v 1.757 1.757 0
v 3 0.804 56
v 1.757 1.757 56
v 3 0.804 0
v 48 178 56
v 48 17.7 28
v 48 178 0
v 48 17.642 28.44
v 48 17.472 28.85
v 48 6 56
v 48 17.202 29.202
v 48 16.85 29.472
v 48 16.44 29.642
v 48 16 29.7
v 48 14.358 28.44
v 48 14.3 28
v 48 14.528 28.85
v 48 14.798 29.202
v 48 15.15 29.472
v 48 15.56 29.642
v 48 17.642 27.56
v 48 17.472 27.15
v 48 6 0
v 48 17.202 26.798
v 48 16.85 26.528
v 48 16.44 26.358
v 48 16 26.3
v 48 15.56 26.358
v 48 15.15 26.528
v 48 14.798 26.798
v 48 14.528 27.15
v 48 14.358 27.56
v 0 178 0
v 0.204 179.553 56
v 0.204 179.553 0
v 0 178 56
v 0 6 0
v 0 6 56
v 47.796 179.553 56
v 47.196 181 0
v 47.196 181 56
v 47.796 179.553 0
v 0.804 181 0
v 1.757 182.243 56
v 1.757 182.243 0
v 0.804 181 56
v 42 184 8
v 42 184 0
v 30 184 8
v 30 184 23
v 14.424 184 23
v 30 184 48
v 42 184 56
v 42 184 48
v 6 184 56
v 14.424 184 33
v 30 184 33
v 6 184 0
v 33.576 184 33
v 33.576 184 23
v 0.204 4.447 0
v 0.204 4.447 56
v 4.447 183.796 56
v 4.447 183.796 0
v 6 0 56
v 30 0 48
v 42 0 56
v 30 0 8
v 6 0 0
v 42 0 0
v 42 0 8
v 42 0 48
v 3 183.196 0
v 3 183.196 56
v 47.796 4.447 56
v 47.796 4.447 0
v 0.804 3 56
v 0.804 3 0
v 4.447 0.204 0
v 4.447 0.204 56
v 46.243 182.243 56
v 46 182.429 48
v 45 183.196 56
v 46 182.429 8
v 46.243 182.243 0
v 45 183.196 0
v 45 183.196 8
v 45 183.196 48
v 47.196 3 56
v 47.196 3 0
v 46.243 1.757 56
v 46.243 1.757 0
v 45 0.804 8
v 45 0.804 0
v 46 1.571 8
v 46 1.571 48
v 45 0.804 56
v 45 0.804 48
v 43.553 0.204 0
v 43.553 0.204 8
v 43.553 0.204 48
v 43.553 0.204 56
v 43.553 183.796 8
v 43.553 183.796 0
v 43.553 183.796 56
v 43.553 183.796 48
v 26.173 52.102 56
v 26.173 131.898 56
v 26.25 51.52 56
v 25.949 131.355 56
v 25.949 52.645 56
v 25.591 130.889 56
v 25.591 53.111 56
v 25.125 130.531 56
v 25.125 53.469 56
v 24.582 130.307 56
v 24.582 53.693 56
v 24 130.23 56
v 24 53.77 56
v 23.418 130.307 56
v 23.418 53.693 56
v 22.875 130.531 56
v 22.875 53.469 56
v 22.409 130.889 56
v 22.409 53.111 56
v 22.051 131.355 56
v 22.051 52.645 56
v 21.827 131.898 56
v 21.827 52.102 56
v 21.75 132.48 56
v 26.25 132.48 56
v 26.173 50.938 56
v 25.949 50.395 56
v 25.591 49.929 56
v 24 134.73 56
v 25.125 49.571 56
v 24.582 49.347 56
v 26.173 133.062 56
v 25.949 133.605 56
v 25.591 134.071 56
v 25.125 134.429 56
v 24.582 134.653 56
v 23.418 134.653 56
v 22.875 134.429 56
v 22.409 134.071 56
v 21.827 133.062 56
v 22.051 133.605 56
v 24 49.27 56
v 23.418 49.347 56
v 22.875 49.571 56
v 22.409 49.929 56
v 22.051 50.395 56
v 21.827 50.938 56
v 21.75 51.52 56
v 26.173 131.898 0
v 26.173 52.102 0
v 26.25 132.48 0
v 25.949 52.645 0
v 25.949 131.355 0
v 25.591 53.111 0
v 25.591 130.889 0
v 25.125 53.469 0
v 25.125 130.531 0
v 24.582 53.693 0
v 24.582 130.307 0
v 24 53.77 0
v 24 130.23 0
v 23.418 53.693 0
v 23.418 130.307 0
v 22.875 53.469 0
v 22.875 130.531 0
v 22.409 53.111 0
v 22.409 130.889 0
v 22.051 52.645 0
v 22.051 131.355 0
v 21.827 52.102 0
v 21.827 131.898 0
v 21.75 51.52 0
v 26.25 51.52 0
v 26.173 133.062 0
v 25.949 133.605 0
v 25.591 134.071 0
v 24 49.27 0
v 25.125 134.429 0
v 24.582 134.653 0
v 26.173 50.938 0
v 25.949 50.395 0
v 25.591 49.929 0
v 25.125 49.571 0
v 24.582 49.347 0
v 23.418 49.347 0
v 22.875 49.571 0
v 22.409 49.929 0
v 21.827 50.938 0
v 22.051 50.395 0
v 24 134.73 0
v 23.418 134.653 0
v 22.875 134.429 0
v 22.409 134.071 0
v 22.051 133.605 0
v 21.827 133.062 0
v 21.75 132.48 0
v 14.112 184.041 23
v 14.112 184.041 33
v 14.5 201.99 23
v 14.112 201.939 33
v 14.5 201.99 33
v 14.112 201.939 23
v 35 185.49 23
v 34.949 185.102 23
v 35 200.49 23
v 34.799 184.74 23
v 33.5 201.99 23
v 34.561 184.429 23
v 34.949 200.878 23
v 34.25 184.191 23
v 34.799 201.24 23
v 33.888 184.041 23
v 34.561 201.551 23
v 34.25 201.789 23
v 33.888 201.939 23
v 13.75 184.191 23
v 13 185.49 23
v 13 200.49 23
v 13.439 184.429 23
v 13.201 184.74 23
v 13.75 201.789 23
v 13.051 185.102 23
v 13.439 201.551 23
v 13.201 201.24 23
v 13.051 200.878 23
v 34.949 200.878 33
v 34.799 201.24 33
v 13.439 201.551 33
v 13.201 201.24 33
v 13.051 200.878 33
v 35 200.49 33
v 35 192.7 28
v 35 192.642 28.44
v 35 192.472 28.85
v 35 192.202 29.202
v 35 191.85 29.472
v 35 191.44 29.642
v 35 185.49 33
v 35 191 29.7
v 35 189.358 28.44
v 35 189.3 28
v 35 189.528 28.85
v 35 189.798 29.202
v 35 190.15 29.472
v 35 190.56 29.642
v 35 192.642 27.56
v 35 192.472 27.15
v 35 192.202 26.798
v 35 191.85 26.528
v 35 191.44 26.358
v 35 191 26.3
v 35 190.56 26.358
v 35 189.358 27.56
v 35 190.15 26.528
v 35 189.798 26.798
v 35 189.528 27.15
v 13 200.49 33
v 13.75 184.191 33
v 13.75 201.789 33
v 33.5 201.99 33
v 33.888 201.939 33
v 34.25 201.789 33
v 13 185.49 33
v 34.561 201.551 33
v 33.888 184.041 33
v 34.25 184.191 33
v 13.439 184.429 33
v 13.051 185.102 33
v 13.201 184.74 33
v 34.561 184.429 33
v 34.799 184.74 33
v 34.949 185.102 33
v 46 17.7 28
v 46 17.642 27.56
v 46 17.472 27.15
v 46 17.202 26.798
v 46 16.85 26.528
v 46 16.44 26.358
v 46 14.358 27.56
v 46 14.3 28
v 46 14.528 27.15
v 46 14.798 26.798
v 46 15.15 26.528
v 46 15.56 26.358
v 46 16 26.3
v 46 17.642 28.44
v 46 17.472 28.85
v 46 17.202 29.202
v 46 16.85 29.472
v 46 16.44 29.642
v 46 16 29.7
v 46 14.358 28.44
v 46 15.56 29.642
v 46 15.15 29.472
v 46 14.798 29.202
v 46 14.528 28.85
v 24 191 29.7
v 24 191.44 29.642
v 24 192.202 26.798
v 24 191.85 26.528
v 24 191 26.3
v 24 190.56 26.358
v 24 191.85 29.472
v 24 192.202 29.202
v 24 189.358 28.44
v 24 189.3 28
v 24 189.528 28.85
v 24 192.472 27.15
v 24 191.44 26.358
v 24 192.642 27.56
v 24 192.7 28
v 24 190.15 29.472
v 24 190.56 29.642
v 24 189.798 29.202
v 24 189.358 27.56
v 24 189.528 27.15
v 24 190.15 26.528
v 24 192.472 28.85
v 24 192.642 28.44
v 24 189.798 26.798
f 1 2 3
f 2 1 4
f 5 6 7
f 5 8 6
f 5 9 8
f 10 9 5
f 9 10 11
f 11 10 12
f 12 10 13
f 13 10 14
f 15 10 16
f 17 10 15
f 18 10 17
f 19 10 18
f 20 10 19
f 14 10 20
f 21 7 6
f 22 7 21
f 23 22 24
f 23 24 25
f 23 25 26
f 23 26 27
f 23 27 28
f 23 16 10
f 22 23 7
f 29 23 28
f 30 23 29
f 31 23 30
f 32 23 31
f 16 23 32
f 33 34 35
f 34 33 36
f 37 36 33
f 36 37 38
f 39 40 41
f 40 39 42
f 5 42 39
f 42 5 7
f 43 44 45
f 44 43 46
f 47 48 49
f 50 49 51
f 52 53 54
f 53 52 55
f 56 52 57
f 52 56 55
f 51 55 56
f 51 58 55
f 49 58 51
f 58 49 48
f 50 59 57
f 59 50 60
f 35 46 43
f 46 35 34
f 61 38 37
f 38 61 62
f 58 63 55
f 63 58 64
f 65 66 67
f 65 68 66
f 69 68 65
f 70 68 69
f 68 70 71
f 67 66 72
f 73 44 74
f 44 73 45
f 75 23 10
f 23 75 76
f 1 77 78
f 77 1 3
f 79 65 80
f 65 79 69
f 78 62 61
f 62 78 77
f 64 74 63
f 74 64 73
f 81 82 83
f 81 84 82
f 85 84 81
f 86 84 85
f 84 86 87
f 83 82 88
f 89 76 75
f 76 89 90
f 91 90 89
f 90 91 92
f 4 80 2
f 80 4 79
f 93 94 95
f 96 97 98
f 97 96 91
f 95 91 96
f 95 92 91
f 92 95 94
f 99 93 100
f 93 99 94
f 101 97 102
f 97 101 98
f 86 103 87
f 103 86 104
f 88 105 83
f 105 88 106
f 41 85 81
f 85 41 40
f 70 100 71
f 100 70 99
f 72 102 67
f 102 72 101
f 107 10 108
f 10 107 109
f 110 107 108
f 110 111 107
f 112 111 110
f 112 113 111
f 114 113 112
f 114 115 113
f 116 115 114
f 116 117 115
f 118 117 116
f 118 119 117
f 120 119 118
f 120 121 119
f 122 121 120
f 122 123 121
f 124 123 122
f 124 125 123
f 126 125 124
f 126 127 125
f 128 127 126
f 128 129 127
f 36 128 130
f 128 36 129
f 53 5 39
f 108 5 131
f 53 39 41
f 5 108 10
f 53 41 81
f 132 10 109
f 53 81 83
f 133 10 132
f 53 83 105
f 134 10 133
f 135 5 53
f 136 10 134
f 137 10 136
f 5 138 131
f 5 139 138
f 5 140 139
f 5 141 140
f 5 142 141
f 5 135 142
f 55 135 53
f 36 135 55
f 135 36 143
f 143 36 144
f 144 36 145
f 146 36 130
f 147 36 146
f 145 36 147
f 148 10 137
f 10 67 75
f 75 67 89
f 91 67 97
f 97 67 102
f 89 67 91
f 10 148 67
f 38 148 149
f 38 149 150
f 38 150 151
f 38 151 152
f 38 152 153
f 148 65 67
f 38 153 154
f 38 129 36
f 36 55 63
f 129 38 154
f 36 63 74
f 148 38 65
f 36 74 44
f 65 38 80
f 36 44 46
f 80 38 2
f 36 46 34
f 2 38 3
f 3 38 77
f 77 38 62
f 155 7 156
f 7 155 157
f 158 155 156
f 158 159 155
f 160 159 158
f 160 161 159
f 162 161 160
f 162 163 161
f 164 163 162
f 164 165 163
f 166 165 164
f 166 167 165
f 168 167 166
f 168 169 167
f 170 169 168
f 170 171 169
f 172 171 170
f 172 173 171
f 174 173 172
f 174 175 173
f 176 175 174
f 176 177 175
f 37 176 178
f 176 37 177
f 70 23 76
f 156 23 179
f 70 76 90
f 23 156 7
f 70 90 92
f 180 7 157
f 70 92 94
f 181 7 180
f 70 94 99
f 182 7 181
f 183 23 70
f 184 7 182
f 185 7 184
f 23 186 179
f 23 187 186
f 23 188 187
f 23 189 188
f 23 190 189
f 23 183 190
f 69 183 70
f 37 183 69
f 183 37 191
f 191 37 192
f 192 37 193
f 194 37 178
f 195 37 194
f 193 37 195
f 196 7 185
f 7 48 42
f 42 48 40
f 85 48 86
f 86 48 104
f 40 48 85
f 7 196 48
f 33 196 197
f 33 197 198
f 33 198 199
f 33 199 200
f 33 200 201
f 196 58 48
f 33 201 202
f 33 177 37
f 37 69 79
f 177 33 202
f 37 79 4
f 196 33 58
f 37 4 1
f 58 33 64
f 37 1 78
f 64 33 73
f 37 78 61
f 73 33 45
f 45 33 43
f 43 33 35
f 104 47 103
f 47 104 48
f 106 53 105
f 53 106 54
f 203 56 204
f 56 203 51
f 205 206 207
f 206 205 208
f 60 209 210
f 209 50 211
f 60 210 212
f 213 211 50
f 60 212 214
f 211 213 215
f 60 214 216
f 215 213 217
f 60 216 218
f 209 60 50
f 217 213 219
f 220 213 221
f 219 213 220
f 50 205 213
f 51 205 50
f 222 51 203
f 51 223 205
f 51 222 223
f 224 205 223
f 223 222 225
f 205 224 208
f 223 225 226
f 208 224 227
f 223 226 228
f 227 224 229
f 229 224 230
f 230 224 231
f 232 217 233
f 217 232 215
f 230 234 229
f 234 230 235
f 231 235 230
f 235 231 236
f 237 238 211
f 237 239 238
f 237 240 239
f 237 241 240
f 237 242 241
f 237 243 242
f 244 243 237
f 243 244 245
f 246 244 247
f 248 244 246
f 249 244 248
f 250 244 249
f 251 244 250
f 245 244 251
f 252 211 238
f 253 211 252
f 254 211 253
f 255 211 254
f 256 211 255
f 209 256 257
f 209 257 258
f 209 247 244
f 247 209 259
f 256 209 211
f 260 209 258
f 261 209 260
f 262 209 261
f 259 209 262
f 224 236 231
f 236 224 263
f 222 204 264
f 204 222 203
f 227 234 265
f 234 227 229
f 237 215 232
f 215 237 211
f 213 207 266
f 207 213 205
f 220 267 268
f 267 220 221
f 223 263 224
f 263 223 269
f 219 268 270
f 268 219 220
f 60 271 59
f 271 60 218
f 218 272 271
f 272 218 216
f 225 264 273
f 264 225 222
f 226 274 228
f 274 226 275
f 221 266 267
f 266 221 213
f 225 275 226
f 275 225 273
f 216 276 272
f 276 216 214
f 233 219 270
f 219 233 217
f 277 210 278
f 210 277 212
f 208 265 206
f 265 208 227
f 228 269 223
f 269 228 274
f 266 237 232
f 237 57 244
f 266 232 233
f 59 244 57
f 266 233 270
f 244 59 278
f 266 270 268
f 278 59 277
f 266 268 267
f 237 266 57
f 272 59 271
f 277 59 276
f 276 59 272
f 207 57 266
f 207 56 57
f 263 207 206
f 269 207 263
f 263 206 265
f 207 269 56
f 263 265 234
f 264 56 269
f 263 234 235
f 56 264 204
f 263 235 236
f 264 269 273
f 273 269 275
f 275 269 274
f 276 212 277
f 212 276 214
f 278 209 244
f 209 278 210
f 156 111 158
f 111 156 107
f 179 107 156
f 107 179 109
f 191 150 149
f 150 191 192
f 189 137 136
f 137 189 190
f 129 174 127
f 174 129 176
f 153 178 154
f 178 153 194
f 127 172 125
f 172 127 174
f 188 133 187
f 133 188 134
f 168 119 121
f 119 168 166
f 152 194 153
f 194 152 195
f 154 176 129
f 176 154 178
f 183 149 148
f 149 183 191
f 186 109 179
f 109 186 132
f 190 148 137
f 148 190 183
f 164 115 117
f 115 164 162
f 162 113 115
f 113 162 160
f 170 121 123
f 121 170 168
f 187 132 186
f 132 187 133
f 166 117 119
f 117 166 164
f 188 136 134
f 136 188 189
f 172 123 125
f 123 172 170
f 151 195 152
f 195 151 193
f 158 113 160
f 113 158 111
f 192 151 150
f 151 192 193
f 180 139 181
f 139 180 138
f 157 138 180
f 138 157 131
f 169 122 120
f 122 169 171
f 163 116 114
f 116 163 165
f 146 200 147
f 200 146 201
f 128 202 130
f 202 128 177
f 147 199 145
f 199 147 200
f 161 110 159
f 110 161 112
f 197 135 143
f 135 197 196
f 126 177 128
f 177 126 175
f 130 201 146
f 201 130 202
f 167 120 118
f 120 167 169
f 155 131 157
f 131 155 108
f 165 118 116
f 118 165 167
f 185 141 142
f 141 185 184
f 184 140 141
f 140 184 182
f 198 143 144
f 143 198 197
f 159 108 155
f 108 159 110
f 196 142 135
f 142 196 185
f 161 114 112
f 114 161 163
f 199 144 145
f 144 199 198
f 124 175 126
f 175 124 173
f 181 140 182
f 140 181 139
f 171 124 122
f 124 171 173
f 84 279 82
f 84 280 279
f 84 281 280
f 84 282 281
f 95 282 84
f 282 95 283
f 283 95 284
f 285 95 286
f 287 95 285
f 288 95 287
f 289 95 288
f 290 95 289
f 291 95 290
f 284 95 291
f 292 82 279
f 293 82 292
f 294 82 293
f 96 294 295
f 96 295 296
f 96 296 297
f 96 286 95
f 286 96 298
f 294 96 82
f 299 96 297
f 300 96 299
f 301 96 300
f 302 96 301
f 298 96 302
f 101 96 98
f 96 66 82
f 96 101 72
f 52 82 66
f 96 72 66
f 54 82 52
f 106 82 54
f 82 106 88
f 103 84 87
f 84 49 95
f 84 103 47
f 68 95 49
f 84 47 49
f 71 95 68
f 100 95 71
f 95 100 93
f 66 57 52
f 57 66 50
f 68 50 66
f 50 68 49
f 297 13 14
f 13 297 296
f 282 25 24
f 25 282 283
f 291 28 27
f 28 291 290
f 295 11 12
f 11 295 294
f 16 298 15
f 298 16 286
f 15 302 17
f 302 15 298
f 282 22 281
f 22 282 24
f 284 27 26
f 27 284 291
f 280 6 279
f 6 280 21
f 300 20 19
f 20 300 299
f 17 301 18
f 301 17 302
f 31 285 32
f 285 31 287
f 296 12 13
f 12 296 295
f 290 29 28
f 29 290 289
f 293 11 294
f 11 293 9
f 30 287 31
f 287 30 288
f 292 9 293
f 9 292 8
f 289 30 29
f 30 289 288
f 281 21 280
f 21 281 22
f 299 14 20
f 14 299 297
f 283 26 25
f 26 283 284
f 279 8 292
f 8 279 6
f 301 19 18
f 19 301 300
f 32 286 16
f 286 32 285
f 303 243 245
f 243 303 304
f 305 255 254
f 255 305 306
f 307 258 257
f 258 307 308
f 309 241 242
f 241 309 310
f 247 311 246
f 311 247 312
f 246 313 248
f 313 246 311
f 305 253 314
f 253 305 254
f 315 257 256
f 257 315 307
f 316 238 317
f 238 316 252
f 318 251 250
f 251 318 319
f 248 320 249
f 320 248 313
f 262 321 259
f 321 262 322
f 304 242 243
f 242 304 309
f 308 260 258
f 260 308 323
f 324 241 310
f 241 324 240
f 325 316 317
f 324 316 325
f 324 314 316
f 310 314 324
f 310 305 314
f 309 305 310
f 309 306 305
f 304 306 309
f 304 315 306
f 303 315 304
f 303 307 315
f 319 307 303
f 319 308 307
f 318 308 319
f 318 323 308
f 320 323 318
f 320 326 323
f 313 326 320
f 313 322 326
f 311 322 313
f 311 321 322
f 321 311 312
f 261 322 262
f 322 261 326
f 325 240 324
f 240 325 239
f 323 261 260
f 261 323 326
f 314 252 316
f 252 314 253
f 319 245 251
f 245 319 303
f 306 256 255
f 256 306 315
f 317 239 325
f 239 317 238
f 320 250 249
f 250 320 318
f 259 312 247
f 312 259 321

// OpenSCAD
// file: 00_parameters.scad
// TenderCells DoorCell V1 shared parameters
// Units: millimeters

overall_w = 438;
overall_h = 368;
frame_depth = 56;

clear_w = 242;
clear_h = 312;

rail_thick = 32;
jamb_w = 48;
motor_jamb_w = 78;

// Printability targets
target_bed_xy = 220;
comfortable_part_max = 180;

// Modular frame split dimensions
top_seg_len = overall_w / 3;
bottom_seg_len = overall_w / 3;
left_jamb_seg_h = overall_h / 2;
right_lower_h = 118;
right_motor_h = 156;
right_upper_h = overall_h - right_lower_h - right_motor_h;

// Low-cost electronics envelope used by DoorCell V1.4.
// These dimensions are based on common generic modules, not a custom PCB.
esp32_board = [58, 31, 8];
drv8871_board = [31, 26, 7];
current_sensor_board = [26, 22, 7];
lm2596_board = [44, 22, 14];
inline_fuse_body = [45, 15, 14];
cn3065_board = [44, 24, 8];
electronics_clearance = 1.5;
controller_wall = 3;
controller_box_w = 170;
controller_box_h = 115;
controller_box_d = 46;
controller_lid_insert_offset = 11;
controller_m12_gland_d = 12.8;
controller_m10_gland_d = 10.6;
controller_m8_gland_d = 8.4;
controller_button_d = 16.2;

// Brass heat-set/push-in insert features.
insert_post_d = 8.0;
insert_post_h = 8.0;
insert_pilot_d = 4.6;
insert_pilot_depth = 6.5;
hold_down_screw_clearance = 3.4;

// Motor envelope for common 25GA/JGA25-370 gearmotors with optional encoder.
motor_body_d = 25.0;
motor_body_clearance_d = 27.2;
motor_body_len = 65;
motor_encoder_clearance = 16;
motor_mount_plate = [72, 92, 12];
motor_mount_cradle = [54, 74, 28];

// Optional solar add-on.
solar_panel_w = 145;
solar_panel_h = 145;
solar_panel_t = 4.0;
solar_panel_frame_border = 10;
solar_panel_frame_w = solar_panel_w + 2*solar_panel_frame_border;
solar_panel_frame_h = solar_panel_h + 2*solar_panel_frame_border;
solar_panel_back_depth = 14;
solar_panel_lip_overlap = 3;
solar_ball_d = 22;
solar_ball_socket_clearance = 0.45;
solar_mount_m5 = 5.4;

// Tongue-and-groove frame joints
// Fit target: common FDM printers with PETG/ASA.
// Clearance is per side, so sockets add 2x this value.
tongue_len = 18;
tongue_w = 22;
tongue_z = 10;
tongue_clearance_side = 0.25;
tongue_socket_depth_extra = 0.60;

door_w = 270;
door_h = 326;
door_t = 8;

track_gap = 11;
track_depth = 12;

// Rack-and-pinion drive
// Metric module gear math:
// circular_pitch = PI * module
// pitch_diameter = module * tooth_count
// outside_diameter = module * (tooth_count + 2)
// root_diameter = module * (tooth_count - 2.5)
gear_module = 2.0;
pressure_angle = 20;
gear_backlash = 0.20; // mm removed from rack tooth thickness at pitch line

pinion_teeth = 16;
pinion_pitch_d = gear_module * pinion_teeth;
pinion_pitch_radius = pinion_pitch_d / 2;
pinion_outer_d = gear_module * (pinion_teeth + 2);
pinion_outer_radius = pinion_outer_d / 2;
pinion_root_d = gear_module * (pinion_teeth - 2.5);
pinion_root_radius = pinion_root_d / 2;
pinion_thick = 12;
shaft_d = 6.2;

rack_tooth_count = 15;
rack_circular_pitch = 3.141592653589793 * gear_module;
rack_len = rack_circular_pitch * rack_tooth_count;
rack_w = 18;
rack_t = 6;
rack_addendum = gear_module;
rack_dedendum = 1.25 * gear_module;
rack_tooth_h = rack_addendum + rack_dedendum;
rack_pitch_line_z = rack_dedendum;
rack_tooth_pitch_thickness = rack_circular_pitch / 2 - gear_backlash;
rack_tooth_top_w = rack_tooth_pitch_thickness - 2 * rack_addendum * tan(pressure_angle);
rack_tooth_root_w = rack_tooth_pitch_thickness + 2 * rack_dedendum * tan(pressure_angle);

screw_m3 = 3.4;
screw_m4 = 4.5;
insert_m3 = 4.6;

eps = 0.01;

module rounded_box(size=[10,10,10], r=2) {
  hull() {
    translate([r,r,0]) cylinder(h=size[2], r=r, $fn=24);
    translate([size[0]-r,r,0]) cylinder(h=size[2], r=r, $fn=24);
    translate([r,size[1]-r,0]) cylinder(h=size[2], r=r, $fn=24);
    translate([size[0]-r,size[1]-r,0]) cylinder(h=size[2], r=r, $fn=24);
  }
}

module m3_clearance_hole(h=20) {
  cylinder(h=h, d=screw_m3, $fn=24);
}

module m4_clearance_hole(h=20) {
  cylinder(h=h, d=screw_m4, $fn=24);
}

module heat_insert_hole(h=6) {
  cylinder(h=h, d=insert_m3, $fn=24);
}

module heat_insert_post(h=insert_post_h, d=insert_post_d) {
  difference() {
    cylinder(h=h, d=d, $fn=32);
    translate([0,0,h-insert_pilot_depth+eps])
      cylinder(h=insert_pilot_depth+eps, d=insert_pilot_d, $fn=24);
  }
}

module m3_hold_down_slot(length=10, h=4) {
  hull() {
    translate([-length/2,0,0]) cylinder(h=h, d=hold_down_screw_clearance, $fn=20);
    translate([ length/2,0,0]) cylinder(h=h, d=hold_down_screw_clearance, $fn=20);
  }
}

module rail_channel(length=100) {
  cube([length, track_gap, track_depth]);
}

module frame_tongue_x() {
  rounded_box([tongue_len, tongue_w, tongue_z], r=1.5);
}

module frame_socket_x() {
  cube([
    tongue_len + tongue_socket_depth_extra,
    tongue_w + 2*tongue_clearance_side,
    tongue_z + 2*tongue_clearance_side
  ]);
}

module frame_tongue_y() {
  rounded_box([tongue_w, tongue_len, tongue_z], r=1.5);
}

module frame_socket_y() {
  cube([
    tongue_w + 2*tongue_clearance_side,
    tongue_len + tongue_socket_depth_extra,
    tongue_z + 2*tongue_clearance_side
  ]);
}

module rack_teeth(len=rack_len) {
  teeth = floor(len / rack_circular_pitch);
  for (i=[0:teeth-1]) {
    center = i*rack_circular_pitch + rack_circular_pitch/2;
    translate([0, 0, rack_t-0.20])
      linear_extrude(height=rack_w)
        polygon(points=[
          [center - rack_tooth_root_w/2, 0],
          [center + rack_tooth_root_w/2, 0],
          [center + rack_tooth_top_w/2, rack_tooth_h],
          [center - rack_tooth_top_w/2, rack_tooth_h]
        ]);
  }
}

function polar_point(r, a) = [r * cos(a), r * sin(a)];
// file: frame_modular_common.scad
include <00_parameters.scad>

module horizontal_frame_segment(seg_len=top_seg_len, rail_kind="top", joint_left="socket", joint_right="tongue") {
  difference() {
    union() {
      rounded_box([seg_len, rail_thick, frame_depth], r=6);

      if (joint_right == "tongue") {
        translate([seg_len - eps, rail_thick/2 - tongue_w/2, frame_depth/2 - tongue_z/2])
          frame_tongue_x();
      }
    }

    // Tongue receiver from previous segment.
    if (joint_left == "socket") {
      translate([
        -eps,
        rail_thick/2 - (tongue_w + 2*tongue_clearance_side)/2,
        frame_depth/2 - (tongue_z + 2*tongue_clearance_side)/2
      ])
        frame_socket_x();
    }

    // Sliding door guide channel.
    if (rail_kind == "top") {
      translate([8, rail_thick-track_gap-5, 8])
        rail_channel(length=seg_len-16);
    } else {
      translate([8, 5, frame_depth-track_depth-8])
        rail_channel(length=seg_len-16);

      // Drain slots for bottom rail.
      for (x=[seg_len*0.25, seg_len*0.5, seg_len*0.75]) {
        translate([x-10, rail_thick/2-2, frame_depth-4])
          cube([20, 4, 10]);
      }
    }

    // Coop mounting holes.
    for (x=[18, seg_len-18]) {
      translate([x, rail_thick/2, -eps])
        m4_clearance_hole(h=frame_depth+2);
    }

    // Cross-bolt holes near frame split joints.
    if (joint_left == "socket") {
      translate([tongue_len/2, rail_thick/2, frame_depth/2])
        rotate([90,0,0]) m3_clearance_hole(h=rail_thick+2);
    }
    if (joint_right == "tongue") {
      translate([seg_len + tongue_len/2 - 2, rail_thick/2, frame_depth/2])
        rotate([90,0,0]) m3_clearance_hole(h=rail_thick+2);
    }
  }
}

module left_jamb_segment(seg_h=left_jamb_seg_h, joint_bottom="socket", joint_top="tongue", corner_bottom=false, corner_top=false) {
  difference() {
    union() {
      rounded_box([jamb_w, seg_h, frame_depth], r=6);

      if (joint_top == "tongue") {
        translate([jamb_w/2 - tongue_w/2, seg_h - eps, frame_depth/2 - tongue_z/2])
          frame_tongue_y();
      }
    }

    if (joint_bottom == "socket") {
      translate([
        jamb_w/2 - (tongue_w + 2*tongue_clearance_side)/2,
        -eps,
        frame_depth/2 - (tongue_z + 2*tongue_clearance_side)/2
      ])
        frame_socket_y();
    }

    // Door pocket relief.
    translate([jamb_w-18, 0, 8])
      cube([16, seg_h, frame_depth-16]);

    // Coop mounting holes.
    for (y=[seg_h*0.28, seg_h*0.72]) {
      translate([jamb_w/2, y, -eps]) m4_clearance_hole(h=frame_depth+2);
    }

    // Rail-to-jamb corner holes.
    if (corner_bottom) {
      translate([jamb_w-10, 16, frame_depth/2])
        rotate([0,90,0]) m3_clearance_hole(h=20);
    }
    if (corner_top) {
      translate([jamb_w-10, seg_h-16, frame_depth/2])
        rotate([0,90,0]) m3_clearance_hole(h=20);
    }

    // Cross-bolt through tongue-and-groove.
    if (joint_bottom == "socket") {
      translate([jamb_w/2, tongue_len/2, frame_depth/2])
        rotate([0,90,0]) m3_clearance_hole(h=jamb_w+2);
    }
    if (joint_top == "tongue") {
      translate([jamb_w/2, seg_h + tongue_len/2 - 2, frame_depth/2])
        rotate([0,90,0]) m3_clearance_hole(h=jamb_w+2);
    }
  }
}

module right_jamb_segment(seg_h=120, has_motor_bay=false, joint_bottom="socket", joint_top="tongue", corner_bottom=false, corner_top=false) {
  difference() {
    union() {
      rounded_box([motor_jamb_w, seg_h, frame_depth], r=6);

      if (has_motor_bay) {
        translate([motor_jamb_w-8, 20, 0])
          rounded_box([70, seg_h-32, frame_depth], r=5);
      }

      if (joint_top == "tongue") {
        translate([motor_jamb_w/2 - tongue_w/2, seg_h - eps, frame_depth/2 - tongue_z/2])
          frame_tongue_y();
      }
    }

    if (joint_bottom == "socket") {
      translate([
        motor_jamb_w/2 - (tongue_w + 2*tongue_clearance_side)/2,
        -eps,
        frame_depth/2 - (tongue_z + 2*tongue_clearance_side)/2
      ])
        frame_socket_y();
    }

    // Door pocket relief.
    translate([0, 0, 8])
      cube([20, seg_h, frame_depth-16]);

    if (has_motor_bay) {
      // Motor cassette pocket sized for the revised 25GA mount.
      translate([motor_jamb_w+5, 33, 8])
        cube([62, 92, 40]);

      // Pinion/rack engagement window.
      translate([4, 68, 16])
        cube([46, 36, 24]);

      // Motor/control harness pass-through for M12-style cable gland routing.
      translate([motor_jamb_w+26, seg_h-42, 16])
        cube([24, 34, 26]);

      // Limit switch lead pass-throughs.
      translate([motor_jamb_w-2, 18, 18])
        cube([16, 18, 16]);
      translate([motor_jamb_w-2, seg_h-36, 18])
        cube([16, 18, 16]);
    }

    // Coop mounting holes.
    for (y=[seg_h*0.28, seg_h*0.72]) {
      translate([motor_jamb_w/2, y, -eps]) m4_clearance_hole(h=frame_depth+2);
    }

    // Rail-to-jamb corner holes.
    if (corner_bottom) {
      translate([10, 16, frame_depth/2])
        rotate([0,90,0]) m3_clearance_hole(h=20);
    }
    if (corner_top) {
      translate([10, seg_h-16, frame_depth/2])
        rotate([0,90,0]) m3_clearance_hole(h=20);
    }

    // Cross-bolt through tongue-and-groove.
    if (joint_bottom == "socket") {
      translate([motor_jamb_w/2, tongue_len/2, frame_depth/2])
        rotate([0,90,0]) m3_clearance_hole(h=motor_jamb_w+2);
    }
    if (joint_top == "tongue") {
      translate([motor_jamb_w/2, seg_h + tongue_len/2 - 2, frame_depth/2])
        rotate([0,90,0]) m3_clearance_hole(h=motor_jamb_w+2);
    }
  }
}
// main file
include <frame_modular_common.scad>

left_jamb_segment(seg_h=left_jamb_seg_h, joint_bottom="none", joint_top="tongue", corner_bottom=true, corner_top=false);
